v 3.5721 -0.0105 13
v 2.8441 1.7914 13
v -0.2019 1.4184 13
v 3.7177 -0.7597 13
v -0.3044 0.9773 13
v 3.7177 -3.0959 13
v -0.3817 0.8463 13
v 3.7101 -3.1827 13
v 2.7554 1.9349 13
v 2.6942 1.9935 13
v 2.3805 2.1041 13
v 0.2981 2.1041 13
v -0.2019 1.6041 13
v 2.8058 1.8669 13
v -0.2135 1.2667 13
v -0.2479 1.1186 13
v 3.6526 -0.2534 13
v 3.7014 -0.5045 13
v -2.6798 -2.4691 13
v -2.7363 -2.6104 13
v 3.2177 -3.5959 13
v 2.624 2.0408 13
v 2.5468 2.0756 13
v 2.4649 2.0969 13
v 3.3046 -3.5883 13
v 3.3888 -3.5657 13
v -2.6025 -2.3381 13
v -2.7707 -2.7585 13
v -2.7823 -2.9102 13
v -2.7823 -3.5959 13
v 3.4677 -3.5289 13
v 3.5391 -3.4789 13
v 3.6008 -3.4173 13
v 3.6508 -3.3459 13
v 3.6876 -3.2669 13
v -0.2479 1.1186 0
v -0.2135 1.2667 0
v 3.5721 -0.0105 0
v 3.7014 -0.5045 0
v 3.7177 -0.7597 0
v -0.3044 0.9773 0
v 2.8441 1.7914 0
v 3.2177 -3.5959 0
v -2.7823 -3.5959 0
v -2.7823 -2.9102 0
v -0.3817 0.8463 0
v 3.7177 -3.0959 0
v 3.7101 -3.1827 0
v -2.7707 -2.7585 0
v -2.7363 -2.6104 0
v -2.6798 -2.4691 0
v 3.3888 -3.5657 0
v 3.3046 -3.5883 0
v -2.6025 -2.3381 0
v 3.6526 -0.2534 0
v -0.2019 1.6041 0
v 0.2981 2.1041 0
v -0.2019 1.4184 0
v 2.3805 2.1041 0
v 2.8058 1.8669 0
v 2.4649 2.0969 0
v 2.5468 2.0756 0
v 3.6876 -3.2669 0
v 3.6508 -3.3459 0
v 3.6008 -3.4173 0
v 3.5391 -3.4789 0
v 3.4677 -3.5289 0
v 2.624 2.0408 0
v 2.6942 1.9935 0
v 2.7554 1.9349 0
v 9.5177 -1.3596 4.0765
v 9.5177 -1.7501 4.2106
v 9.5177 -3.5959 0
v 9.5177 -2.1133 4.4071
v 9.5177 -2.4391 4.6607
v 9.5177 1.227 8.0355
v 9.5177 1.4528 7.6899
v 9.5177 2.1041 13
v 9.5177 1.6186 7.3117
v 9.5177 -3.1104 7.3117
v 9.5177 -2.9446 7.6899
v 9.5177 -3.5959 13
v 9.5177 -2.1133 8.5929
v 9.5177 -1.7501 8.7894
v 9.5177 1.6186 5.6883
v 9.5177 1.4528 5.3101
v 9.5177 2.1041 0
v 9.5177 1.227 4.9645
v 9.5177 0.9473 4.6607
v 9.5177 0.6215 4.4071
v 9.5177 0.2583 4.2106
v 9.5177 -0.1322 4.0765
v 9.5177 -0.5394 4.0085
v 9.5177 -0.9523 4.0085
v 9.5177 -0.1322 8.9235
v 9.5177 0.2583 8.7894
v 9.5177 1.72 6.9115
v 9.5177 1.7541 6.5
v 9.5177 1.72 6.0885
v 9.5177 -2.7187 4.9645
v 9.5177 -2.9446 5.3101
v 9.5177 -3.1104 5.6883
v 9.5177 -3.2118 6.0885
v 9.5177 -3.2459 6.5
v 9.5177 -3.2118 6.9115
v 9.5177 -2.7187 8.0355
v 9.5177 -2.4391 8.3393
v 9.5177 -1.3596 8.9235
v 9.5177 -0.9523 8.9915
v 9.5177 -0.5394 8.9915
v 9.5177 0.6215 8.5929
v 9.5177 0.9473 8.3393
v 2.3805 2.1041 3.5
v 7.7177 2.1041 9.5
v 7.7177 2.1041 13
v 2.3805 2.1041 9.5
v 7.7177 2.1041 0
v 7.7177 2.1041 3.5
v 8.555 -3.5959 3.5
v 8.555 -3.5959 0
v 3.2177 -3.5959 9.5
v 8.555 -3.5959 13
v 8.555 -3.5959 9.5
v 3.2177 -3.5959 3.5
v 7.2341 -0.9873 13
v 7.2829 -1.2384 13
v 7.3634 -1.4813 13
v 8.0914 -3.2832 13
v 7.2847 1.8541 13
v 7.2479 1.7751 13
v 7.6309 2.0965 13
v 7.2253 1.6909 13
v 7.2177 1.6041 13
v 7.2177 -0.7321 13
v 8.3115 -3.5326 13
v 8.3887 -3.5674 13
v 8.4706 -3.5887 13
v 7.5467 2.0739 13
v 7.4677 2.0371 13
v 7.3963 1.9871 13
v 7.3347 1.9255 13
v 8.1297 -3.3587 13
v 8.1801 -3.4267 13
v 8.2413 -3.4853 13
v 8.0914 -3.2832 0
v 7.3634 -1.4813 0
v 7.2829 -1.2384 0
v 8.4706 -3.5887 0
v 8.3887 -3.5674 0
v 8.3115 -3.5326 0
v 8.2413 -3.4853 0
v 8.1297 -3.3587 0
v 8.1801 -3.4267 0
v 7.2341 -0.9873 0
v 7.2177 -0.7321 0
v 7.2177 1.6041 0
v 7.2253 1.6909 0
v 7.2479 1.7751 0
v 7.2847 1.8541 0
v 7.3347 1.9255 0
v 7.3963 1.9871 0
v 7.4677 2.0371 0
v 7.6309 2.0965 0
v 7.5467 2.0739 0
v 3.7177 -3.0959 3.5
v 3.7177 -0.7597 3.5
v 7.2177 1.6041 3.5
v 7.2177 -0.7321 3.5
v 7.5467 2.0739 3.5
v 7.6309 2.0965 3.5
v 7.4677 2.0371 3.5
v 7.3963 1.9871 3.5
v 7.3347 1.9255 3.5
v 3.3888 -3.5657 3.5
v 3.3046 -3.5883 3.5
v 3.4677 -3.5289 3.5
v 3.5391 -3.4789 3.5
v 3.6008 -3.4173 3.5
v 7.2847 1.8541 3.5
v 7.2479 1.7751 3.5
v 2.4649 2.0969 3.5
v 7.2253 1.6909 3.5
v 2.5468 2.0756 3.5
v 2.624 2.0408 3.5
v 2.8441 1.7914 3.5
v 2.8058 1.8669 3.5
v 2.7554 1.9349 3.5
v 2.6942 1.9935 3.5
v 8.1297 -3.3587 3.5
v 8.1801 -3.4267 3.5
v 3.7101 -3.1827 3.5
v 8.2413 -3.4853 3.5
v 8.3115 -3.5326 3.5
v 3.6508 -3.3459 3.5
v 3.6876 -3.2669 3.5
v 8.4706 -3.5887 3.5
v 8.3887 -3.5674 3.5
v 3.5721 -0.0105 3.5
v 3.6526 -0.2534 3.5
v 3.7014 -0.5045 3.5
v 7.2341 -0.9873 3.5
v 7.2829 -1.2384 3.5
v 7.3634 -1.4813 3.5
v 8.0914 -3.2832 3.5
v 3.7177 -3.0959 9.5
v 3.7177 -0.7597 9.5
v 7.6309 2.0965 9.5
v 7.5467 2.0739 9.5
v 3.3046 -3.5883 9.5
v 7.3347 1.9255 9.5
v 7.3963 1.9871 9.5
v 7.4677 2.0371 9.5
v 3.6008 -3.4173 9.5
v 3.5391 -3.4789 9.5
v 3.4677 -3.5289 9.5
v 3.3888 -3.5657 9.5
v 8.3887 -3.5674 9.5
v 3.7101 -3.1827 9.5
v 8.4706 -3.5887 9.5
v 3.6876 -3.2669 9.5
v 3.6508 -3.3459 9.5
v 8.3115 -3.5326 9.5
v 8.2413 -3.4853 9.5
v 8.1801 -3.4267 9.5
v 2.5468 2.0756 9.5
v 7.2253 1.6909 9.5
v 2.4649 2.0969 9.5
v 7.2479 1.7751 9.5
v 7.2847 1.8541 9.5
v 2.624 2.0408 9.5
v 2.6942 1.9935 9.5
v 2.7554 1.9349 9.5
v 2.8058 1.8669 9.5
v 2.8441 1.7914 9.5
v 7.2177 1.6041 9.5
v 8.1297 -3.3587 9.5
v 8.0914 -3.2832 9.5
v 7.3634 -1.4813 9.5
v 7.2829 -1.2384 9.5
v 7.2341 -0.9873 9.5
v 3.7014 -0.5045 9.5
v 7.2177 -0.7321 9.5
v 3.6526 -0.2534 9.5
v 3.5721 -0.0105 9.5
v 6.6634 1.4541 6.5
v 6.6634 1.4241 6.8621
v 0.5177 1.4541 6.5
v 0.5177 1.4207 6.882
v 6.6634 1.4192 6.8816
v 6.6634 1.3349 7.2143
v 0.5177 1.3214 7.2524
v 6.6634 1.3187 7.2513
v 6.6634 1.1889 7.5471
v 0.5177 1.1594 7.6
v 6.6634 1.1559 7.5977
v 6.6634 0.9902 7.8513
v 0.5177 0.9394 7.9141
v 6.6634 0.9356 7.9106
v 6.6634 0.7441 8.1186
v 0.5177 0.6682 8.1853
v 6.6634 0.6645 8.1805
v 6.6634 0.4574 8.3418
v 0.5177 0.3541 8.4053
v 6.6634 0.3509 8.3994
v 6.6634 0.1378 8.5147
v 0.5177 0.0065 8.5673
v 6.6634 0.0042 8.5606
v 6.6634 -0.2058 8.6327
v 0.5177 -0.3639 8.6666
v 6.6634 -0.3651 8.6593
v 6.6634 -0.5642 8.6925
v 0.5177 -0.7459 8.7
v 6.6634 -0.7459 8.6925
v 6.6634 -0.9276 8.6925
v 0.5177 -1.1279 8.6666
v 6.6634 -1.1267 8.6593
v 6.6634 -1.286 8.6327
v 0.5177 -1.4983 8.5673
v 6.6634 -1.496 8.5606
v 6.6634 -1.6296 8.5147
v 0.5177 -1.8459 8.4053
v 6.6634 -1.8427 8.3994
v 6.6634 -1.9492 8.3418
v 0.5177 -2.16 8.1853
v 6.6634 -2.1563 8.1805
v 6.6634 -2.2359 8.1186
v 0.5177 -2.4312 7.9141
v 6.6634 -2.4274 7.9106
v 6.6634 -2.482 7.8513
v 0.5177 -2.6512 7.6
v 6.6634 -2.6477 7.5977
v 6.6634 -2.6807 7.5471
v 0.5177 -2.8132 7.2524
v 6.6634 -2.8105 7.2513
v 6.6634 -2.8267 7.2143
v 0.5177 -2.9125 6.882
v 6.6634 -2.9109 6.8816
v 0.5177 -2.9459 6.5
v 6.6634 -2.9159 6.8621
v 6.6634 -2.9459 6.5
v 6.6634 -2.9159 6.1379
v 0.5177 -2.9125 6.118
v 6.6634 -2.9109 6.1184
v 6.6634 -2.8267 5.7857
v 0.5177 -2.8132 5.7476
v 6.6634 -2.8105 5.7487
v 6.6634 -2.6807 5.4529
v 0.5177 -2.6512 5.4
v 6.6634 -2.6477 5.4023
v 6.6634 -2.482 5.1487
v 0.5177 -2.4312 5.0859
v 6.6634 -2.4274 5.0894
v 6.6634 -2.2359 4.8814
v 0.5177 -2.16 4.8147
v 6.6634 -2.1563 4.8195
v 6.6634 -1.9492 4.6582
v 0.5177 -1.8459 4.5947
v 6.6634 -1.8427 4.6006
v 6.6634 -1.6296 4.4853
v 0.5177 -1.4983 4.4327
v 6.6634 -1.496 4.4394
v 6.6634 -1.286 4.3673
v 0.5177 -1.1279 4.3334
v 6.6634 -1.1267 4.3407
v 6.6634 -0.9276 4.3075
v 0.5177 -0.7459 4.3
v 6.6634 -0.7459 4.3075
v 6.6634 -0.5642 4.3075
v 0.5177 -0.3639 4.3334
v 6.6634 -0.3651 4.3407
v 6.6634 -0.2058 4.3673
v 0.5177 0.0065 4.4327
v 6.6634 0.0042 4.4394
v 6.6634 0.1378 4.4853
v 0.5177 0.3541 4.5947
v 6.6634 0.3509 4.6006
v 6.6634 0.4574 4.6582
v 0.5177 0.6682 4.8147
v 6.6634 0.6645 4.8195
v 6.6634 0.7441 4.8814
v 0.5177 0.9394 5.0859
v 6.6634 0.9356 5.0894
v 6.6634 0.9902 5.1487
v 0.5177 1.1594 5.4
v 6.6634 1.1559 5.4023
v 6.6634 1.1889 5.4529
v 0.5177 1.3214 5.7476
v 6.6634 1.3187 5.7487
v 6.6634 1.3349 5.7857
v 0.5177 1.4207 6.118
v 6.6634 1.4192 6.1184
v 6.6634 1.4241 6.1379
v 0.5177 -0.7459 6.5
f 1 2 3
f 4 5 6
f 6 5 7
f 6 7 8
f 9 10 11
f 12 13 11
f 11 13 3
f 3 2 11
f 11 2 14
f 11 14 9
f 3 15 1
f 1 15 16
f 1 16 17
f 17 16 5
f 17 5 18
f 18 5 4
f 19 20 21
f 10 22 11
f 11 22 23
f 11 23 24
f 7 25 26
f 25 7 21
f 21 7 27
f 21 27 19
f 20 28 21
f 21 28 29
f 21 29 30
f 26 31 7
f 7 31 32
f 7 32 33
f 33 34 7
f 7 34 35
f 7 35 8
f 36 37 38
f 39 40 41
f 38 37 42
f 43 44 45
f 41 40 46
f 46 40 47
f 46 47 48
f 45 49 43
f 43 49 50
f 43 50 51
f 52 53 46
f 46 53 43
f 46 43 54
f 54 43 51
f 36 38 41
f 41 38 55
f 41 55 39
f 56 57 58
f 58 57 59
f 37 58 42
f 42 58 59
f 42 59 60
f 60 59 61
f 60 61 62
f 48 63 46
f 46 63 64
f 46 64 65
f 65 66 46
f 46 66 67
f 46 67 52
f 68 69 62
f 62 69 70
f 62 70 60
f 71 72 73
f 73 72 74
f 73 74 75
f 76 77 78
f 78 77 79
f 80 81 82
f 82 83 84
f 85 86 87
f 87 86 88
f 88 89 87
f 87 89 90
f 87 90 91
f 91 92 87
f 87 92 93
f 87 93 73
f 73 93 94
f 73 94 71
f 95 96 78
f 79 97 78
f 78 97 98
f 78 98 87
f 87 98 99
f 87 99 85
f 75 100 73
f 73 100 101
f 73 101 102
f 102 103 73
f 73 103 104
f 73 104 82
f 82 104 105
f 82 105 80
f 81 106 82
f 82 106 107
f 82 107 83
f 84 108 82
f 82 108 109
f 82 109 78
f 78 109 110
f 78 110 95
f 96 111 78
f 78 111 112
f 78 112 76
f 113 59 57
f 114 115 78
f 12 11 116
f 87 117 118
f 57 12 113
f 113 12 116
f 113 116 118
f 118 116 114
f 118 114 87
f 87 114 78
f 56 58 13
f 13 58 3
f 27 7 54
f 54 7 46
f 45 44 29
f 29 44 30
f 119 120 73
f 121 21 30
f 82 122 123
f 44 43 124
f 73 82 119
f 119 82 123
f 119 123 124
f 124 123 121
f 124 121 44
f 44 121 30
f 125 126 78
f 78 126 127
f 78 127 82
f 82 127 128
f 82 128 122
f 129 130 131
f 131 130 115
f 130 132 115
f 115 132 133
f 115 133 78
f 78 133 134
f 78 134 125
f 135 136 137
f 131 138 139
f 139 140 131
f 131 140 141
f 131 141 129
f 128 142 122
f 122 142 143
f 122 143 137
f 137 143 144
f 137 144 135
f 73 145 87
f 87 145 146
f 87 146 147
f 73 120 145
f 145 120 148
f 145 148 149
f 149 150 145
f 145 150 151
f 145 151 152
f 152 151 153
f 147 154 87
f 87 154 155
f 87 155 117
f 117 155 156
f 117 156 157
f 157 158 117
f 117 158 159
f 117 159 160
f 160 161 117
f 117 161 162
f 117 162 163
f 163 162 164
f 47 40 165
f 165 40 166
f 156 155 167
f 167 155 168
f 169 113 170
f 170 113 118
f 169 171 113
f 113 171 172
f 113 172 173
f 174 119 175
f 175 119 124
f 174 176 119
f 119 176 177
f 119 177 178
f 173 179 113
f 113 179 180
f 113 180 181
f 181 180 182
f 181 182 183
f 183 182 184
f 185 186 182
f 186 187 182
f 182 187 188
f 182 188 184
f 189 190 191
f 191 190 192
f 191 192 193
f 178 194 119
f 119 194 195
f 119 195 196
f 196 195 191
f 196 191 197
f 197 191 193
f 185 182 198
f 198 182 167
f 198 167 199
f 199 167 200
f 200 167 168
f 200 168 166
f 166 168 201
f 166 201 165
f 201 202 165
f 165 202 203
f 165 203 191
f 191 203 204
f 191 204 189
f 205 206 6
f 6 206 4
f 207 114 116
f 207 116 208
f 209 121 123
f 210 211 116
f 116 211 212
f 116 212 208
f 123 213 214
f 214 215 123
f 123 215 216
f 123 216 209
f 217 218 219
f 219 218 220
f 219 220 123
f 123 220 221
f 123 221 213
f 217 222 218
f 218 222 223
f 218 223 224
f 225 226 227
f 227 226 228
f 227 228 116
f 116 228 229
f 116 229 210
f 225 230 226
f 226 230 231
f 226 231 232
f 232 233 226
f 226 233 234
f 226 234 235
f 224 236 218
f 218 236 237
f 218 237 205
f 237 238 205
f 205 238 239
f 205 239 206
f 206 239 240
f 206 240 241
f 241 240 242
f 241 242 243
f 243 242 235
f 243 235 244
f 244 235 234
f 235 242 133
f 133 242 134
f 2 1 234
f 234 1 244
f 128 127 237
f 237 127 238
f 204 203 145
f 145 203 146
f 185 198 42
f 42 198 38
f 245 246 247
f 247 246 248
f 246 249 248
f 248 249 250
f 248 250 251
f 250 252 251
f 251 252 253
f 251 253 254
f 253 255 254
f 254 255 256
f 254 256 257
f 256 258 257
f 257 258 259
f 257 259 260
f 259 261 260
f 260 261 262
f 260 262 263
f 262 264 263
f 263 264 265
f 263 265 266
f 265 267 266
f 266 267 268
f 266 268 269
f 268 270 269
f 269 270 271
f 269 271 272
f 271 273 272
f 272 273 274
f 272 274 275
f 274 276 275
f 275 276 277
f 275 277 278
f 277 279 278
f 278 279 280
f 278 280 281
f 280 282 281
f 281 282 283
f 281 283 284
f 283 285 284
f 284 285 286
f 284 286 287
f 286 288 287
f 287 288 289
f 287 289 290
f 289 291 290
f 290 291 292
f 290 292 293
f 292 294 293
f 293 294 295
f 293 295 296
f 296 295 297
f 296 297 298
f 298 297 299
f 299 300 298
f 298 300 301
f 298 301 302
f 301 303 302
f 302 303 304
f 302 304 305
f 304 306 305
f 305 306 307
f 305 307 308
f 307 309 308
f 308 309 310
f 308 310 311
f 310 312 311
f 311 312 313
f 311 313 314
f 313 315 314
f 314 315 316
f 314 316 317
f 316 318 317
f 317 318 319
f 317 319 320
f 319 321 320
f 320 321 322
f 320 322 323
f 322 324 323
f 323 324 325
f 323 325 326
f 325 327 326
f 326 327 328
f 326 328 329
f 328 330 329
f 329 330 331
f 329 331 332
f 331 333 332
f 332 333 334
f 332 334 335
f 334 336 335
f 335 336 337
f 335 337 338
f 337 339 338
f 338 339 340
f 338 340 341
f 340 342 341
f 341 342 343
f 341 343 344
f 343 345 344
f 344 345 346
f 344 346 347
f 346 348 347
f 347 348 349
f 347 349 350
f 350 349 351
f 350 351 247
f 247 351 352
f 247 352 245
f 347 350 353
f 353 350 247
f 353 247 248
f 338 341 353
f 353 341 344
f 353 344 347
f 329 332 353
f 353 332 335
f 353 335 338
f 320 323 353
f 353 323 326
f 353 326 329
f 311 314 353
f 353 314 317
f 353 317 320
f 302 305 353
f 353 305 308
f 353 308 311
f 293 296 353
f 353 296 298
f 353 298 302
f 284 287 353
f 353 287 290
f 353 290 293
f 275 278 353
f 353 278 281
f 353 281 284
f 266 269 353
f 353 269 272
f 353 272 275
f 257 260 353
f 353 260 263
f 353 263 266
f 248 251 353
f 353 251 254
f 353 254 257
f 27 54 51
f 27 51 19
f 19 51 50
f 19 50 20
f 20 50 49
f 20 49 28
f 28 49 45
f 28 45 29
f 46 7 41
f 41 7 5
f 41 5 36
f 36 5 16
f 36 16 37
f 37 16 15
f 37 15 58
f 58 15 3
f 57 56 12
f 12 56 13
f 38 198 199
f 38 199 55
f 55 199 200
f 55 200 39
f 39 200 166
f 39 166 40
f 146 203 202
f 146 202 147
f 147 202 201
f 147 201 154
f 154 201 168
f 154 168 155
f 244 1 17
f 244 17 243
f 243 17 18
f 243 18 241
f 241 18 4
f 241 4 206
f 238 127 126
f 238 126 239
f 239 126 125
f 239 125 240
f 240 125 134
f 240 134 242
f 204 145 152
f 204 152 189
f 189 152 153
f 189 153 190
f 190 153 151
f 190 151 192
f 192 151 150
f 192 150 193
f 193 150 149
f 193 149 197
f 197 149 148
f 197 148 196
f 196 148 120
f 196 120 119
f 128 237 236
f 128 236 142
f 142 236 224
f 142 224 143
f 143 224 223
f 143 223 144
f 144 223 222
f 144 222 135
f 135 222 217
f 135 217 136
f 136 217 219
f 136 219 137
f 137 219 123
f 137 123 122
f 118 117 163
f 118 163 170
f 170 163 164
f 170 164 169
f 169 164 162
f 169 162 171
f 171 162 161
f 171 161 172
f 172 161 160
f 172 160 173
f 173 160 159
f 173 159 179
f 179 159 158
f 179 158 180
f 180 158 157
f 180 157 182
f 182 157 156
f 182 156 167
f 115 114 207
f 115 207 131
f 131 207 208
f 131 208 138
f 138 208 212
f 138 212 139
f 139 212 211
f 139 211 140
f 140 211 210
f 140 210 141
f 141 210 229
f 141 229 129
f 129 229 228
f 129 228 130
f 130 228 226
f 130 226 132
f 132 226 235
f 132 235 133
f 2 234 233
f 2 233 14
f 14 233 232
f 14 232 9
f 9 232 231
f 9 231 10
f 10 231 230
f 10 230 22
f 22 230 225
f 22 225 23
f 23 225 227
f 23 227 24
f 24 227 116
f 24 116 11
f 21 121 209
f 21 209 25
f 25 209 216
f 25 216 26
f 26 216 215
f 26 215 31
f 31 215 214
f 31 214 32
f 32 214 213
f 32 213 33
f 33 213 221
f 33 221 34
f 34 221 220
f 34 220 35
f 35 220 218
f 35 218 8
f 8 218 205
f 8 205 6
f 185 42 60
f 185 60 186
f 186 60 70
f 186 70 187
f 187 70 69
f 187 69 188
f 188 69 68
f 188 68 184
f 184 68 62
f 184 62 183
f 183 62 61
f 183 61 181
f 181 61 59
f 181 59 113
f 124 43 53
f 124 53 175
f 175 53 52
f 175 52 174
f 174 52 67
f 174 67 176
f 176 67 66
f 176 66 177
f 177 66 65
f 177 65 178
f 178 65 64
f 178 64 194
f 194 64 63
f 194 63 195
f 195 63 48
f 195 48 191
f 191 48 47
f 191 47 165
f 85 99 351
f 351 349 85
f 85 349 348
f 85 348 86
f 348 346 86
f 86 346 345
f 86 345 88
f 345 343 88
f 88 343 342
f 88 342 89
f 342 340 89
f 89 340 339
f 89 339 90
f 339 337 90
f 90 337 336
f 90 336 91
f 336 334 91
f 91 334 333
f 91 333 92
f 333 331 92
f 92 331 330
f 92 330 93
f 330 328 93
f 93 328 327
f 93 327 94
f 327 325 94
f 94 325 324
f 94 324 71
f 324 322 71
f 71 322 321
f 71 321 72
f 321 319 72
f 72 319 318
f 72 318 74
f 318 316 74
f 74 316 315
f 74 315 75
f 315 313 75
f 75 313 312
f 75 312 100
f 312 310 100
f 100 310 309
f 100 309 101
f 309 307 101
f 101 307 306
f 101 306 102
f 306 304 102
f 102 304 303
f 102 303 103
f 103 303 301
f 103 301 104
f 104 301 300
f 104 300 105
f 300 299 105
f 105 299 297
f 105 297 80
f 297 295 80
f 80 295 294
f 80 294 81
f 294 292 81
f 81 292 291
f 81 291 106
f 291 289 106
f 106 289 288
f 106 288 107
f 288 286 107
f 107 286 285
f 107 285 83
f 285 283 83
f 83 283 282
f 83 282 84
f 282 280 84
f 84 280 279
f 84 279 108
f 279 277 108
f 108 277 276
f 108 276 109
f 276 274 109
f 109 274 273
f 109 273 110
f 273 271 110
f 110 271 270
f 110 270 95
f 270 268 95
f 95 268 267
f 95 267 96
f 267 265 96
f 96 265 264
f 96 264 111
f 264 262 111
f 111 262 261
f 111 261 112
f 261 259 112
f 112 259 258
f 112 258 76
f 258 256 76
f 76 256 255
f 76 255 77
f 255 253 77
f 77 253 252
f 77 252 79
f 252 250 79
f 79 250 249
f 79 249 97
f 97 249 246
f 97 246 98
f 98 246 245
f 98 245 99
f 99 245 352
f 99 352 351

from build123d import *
from OCP.BRepFilletAPI import BRepFilletAPI_MakeChamfer

# Parameters (mm, degrees)
BOSS_EXTRUDE1_DEPTH = 13
CUT_EXTRUDE1_REACH  = 19.09
SKETCH2_W           = 3.5
SKETCH2_H           = 3.5
CHAMFER3_SIZE       = 1
CHAMFER3_SIZE2      = 2.475086853
SKETCH4_R           = 2.2
CUT_EXTRUDE3_DEPTH  = 9
FILLET1_R           = 1
CHAMFER4_SIZE       = 0.5
FILLET2_R           = 2
FILLET3_R           = 0.5
CHAMFER5_SIZE       = 0.3
CHAMFER5_SIZE2      = 2.854309336


with BuildPart() as part:
    # Sketch1 → Boss-Extrude1 (new body)
    with BuildSketch(Plane.XY):
        Polygon((-2.782258065, -2.595897682), (-0.20192428, 1.104102318), (-0.20192428, 2.104102318), (9.517741935, 2.104102318), (9.517741935, -3.595897682), (-2.782258065, -3.595897682), align=None)
    extrude(amount=BOSS_EXTRUDE1_DEPTH)

    # Sketch2 → Cut-Extrude1 (cut, up to next)
    with BuildSketch(Plane(origin=(0, 2.104102318, 0), x_dir=(1, 0, 0), z_dir=(0, 1, 0)), mode=Mode.PRIVATE) as cut_extrude1_sk1:
        with Locations((5.467741935, -1.75)):
            Rectangle(SKETCH2_W, SKETCH2_H)
    cut_extrude1_tool1 = extrude(cut_extrude1_sk1.sketch, amount=-CUT_EXTRUDE1_REACH, mode=Mode.PRIVATE) & part.part
    # Sketch2 → Cut-Extrude1 (cut, up to next)
    with BuildSketch(Plane(origin=(0, 2.104102318, 0), x_dir=(1, 0, 0), z_dir=(0, 1, 0)), mode=Mode.PRIVATE) as cut_extrude1_sk2:
        with Locations((5.467741935, -11.25)):
            Rectangle(SKETCH2_W, SKETCH2_H)
    cut_extrude1_tool2 = extrude(cut_extrude1_sk2.sketch, amount=-CUT_EXTRUDE1_REACH, mode=Mode.PRIVATE) & part.part
    add(cut_extrude1_tool1.solids().sort_by_distance((5.467742, 2.104102, 1.75))[0], mode=Mode.SUBTRACT)
    add(cut_extrude1_tool2.solids().sort_by_distance((5.467742, 2.104102, 11.25))[0], mode=Mode.SUBTRACT)

    # Chamfer3: one chamfer whose edges measure the first distance from different faces: ONE call of the kernel's chamfer builder (chamfer() names one face for all edges)
    chamfer3_edges_1 = [part.edges().sort_by_distance(p)[0] for p in [
        (3.717741935, 2.104102318, 1.75),
        (3.717741935, 2.104102318, 11.25),
    ]]
    chamfer3_side_1 = [part.faces().sort_by_distance(p)[0] for p in [
        (4.46311444, 2.104102318, 6.5),
    ]]
    chamfer3_edges_2 = [part.edges().sort_by_distance(p)[0] for p in [
        (7.217741935, -3.595897682, 1.75),
        (7.217741935, -3.595897682, 11.25),
    ]]
    chamfer3_side_2 = [part.faces().sort_by_distance(p)[0] for p in [
        (2.987756707, -3.595897682, 6.5),
    ]]
    chamfer3 = BRepFilletAPI_MakeChamfer(part.part.solid().wrapped)
    for e in chamfer3_edges_1:
        chamfer3.Add(CHAMFER3_SIZE, CHAMFER3_SIZE2, e.wrapped, chamfer3_side_1[0].wrapped)  # the first distance lies on this face
    for e in chamfer3_edges_2:
        chamfer3.Add(CHAMFER3_SIZE, CHAMFER3_SIZE2, e.wrapped, chamfer3_side_2[0].wrapped)  # the first distance lies on this face
    add(Compound.cast(chamfer3.Shape()), mode=Mode.REPLACE)

    # Sketch4 → Cut-Extrude3 (cut)
    with BuildSketch(Plane(origin=(9.517741935, 0, 0), x_dir=(0, 0, -1), z_dir=(1, 0, 0))):
        with Locations(Location((-6.5, -0.745897682, 0), (0, 0, 90))):
            Circle(SKETCH4_R)
    extrude(amount=-CUT_EXTRUDE3_DEPTH, mode=Mode.SUBTRACT)

    # Fillet1
    fillet1_edges = [part.edges().sort_by_distance(p)[0] for p in [
        (-2.782258065, -2.595897682, 6.5),
        (-0.20192428, 1.104102318, 6.5),
    ]]
    fillet(fillet1_edges, radius=FILLET1_R)

    # Chamfer4
    chamfer4_edges = [part.edges().sort_by_distance(p)[0] for p in [
        (-0.20192428, 2.104102318, 6.5),
    ]]
    chamfer(chamfer4_edges, length=CHAMFER4_SIZE)

    # Fillet2
    fillet2_edges = [part.edges().sort_by_distance(p)[0] for p in [
        (3.717741935, -0.370984535, 11.25),
        (7.217741935, -1.120810828, 11.25),
        (7.217741935, -1.120810828, 1.75),
        (3.717741935, -0.370984535, 1.75),
    ]]
    fillet(fillet2_edges, radius=FILLET2_R)

    # Fillet3
    fillet3_edges = [part.edges().sort_by_distance(p)[0] for p in [
        (7.217741935, 2.104102318, 1.75),
        (3.717741935, -3.595897682, 1.75),
        (7.217741935, 2.104102318, 11.25),
        (3.717741935, -3.595897682, 11.25),
        (2.717741935, 2.104102318, 1.75),
        (2.717741935, 2.104102318, 11.25),
        (8.217741935, -3.595897682, 1.75),
        (8.217741935, -3.595897682, 11.25),
    ]]
    fillet(fillet3_edges, radius=FILLET3_R)

    # Chamfer5
    chamfer5_edges = [part.edges().sort_by_distance(p)[0] for p in [
        (9.517741935, -2.945897682, 6.5),
    ]]
    chamfer5_side = [part.faces().sort_by_distance(p)[0] for p in [
        (9.517741935, 1.962155145, 6.5),
    ]]
    chamfer(chamfer5_edges, length=CHAMFER5_SIZE, length2=CHAMFER5_SIZE2, reference=chamfer5_side[0])


solid = part.part
